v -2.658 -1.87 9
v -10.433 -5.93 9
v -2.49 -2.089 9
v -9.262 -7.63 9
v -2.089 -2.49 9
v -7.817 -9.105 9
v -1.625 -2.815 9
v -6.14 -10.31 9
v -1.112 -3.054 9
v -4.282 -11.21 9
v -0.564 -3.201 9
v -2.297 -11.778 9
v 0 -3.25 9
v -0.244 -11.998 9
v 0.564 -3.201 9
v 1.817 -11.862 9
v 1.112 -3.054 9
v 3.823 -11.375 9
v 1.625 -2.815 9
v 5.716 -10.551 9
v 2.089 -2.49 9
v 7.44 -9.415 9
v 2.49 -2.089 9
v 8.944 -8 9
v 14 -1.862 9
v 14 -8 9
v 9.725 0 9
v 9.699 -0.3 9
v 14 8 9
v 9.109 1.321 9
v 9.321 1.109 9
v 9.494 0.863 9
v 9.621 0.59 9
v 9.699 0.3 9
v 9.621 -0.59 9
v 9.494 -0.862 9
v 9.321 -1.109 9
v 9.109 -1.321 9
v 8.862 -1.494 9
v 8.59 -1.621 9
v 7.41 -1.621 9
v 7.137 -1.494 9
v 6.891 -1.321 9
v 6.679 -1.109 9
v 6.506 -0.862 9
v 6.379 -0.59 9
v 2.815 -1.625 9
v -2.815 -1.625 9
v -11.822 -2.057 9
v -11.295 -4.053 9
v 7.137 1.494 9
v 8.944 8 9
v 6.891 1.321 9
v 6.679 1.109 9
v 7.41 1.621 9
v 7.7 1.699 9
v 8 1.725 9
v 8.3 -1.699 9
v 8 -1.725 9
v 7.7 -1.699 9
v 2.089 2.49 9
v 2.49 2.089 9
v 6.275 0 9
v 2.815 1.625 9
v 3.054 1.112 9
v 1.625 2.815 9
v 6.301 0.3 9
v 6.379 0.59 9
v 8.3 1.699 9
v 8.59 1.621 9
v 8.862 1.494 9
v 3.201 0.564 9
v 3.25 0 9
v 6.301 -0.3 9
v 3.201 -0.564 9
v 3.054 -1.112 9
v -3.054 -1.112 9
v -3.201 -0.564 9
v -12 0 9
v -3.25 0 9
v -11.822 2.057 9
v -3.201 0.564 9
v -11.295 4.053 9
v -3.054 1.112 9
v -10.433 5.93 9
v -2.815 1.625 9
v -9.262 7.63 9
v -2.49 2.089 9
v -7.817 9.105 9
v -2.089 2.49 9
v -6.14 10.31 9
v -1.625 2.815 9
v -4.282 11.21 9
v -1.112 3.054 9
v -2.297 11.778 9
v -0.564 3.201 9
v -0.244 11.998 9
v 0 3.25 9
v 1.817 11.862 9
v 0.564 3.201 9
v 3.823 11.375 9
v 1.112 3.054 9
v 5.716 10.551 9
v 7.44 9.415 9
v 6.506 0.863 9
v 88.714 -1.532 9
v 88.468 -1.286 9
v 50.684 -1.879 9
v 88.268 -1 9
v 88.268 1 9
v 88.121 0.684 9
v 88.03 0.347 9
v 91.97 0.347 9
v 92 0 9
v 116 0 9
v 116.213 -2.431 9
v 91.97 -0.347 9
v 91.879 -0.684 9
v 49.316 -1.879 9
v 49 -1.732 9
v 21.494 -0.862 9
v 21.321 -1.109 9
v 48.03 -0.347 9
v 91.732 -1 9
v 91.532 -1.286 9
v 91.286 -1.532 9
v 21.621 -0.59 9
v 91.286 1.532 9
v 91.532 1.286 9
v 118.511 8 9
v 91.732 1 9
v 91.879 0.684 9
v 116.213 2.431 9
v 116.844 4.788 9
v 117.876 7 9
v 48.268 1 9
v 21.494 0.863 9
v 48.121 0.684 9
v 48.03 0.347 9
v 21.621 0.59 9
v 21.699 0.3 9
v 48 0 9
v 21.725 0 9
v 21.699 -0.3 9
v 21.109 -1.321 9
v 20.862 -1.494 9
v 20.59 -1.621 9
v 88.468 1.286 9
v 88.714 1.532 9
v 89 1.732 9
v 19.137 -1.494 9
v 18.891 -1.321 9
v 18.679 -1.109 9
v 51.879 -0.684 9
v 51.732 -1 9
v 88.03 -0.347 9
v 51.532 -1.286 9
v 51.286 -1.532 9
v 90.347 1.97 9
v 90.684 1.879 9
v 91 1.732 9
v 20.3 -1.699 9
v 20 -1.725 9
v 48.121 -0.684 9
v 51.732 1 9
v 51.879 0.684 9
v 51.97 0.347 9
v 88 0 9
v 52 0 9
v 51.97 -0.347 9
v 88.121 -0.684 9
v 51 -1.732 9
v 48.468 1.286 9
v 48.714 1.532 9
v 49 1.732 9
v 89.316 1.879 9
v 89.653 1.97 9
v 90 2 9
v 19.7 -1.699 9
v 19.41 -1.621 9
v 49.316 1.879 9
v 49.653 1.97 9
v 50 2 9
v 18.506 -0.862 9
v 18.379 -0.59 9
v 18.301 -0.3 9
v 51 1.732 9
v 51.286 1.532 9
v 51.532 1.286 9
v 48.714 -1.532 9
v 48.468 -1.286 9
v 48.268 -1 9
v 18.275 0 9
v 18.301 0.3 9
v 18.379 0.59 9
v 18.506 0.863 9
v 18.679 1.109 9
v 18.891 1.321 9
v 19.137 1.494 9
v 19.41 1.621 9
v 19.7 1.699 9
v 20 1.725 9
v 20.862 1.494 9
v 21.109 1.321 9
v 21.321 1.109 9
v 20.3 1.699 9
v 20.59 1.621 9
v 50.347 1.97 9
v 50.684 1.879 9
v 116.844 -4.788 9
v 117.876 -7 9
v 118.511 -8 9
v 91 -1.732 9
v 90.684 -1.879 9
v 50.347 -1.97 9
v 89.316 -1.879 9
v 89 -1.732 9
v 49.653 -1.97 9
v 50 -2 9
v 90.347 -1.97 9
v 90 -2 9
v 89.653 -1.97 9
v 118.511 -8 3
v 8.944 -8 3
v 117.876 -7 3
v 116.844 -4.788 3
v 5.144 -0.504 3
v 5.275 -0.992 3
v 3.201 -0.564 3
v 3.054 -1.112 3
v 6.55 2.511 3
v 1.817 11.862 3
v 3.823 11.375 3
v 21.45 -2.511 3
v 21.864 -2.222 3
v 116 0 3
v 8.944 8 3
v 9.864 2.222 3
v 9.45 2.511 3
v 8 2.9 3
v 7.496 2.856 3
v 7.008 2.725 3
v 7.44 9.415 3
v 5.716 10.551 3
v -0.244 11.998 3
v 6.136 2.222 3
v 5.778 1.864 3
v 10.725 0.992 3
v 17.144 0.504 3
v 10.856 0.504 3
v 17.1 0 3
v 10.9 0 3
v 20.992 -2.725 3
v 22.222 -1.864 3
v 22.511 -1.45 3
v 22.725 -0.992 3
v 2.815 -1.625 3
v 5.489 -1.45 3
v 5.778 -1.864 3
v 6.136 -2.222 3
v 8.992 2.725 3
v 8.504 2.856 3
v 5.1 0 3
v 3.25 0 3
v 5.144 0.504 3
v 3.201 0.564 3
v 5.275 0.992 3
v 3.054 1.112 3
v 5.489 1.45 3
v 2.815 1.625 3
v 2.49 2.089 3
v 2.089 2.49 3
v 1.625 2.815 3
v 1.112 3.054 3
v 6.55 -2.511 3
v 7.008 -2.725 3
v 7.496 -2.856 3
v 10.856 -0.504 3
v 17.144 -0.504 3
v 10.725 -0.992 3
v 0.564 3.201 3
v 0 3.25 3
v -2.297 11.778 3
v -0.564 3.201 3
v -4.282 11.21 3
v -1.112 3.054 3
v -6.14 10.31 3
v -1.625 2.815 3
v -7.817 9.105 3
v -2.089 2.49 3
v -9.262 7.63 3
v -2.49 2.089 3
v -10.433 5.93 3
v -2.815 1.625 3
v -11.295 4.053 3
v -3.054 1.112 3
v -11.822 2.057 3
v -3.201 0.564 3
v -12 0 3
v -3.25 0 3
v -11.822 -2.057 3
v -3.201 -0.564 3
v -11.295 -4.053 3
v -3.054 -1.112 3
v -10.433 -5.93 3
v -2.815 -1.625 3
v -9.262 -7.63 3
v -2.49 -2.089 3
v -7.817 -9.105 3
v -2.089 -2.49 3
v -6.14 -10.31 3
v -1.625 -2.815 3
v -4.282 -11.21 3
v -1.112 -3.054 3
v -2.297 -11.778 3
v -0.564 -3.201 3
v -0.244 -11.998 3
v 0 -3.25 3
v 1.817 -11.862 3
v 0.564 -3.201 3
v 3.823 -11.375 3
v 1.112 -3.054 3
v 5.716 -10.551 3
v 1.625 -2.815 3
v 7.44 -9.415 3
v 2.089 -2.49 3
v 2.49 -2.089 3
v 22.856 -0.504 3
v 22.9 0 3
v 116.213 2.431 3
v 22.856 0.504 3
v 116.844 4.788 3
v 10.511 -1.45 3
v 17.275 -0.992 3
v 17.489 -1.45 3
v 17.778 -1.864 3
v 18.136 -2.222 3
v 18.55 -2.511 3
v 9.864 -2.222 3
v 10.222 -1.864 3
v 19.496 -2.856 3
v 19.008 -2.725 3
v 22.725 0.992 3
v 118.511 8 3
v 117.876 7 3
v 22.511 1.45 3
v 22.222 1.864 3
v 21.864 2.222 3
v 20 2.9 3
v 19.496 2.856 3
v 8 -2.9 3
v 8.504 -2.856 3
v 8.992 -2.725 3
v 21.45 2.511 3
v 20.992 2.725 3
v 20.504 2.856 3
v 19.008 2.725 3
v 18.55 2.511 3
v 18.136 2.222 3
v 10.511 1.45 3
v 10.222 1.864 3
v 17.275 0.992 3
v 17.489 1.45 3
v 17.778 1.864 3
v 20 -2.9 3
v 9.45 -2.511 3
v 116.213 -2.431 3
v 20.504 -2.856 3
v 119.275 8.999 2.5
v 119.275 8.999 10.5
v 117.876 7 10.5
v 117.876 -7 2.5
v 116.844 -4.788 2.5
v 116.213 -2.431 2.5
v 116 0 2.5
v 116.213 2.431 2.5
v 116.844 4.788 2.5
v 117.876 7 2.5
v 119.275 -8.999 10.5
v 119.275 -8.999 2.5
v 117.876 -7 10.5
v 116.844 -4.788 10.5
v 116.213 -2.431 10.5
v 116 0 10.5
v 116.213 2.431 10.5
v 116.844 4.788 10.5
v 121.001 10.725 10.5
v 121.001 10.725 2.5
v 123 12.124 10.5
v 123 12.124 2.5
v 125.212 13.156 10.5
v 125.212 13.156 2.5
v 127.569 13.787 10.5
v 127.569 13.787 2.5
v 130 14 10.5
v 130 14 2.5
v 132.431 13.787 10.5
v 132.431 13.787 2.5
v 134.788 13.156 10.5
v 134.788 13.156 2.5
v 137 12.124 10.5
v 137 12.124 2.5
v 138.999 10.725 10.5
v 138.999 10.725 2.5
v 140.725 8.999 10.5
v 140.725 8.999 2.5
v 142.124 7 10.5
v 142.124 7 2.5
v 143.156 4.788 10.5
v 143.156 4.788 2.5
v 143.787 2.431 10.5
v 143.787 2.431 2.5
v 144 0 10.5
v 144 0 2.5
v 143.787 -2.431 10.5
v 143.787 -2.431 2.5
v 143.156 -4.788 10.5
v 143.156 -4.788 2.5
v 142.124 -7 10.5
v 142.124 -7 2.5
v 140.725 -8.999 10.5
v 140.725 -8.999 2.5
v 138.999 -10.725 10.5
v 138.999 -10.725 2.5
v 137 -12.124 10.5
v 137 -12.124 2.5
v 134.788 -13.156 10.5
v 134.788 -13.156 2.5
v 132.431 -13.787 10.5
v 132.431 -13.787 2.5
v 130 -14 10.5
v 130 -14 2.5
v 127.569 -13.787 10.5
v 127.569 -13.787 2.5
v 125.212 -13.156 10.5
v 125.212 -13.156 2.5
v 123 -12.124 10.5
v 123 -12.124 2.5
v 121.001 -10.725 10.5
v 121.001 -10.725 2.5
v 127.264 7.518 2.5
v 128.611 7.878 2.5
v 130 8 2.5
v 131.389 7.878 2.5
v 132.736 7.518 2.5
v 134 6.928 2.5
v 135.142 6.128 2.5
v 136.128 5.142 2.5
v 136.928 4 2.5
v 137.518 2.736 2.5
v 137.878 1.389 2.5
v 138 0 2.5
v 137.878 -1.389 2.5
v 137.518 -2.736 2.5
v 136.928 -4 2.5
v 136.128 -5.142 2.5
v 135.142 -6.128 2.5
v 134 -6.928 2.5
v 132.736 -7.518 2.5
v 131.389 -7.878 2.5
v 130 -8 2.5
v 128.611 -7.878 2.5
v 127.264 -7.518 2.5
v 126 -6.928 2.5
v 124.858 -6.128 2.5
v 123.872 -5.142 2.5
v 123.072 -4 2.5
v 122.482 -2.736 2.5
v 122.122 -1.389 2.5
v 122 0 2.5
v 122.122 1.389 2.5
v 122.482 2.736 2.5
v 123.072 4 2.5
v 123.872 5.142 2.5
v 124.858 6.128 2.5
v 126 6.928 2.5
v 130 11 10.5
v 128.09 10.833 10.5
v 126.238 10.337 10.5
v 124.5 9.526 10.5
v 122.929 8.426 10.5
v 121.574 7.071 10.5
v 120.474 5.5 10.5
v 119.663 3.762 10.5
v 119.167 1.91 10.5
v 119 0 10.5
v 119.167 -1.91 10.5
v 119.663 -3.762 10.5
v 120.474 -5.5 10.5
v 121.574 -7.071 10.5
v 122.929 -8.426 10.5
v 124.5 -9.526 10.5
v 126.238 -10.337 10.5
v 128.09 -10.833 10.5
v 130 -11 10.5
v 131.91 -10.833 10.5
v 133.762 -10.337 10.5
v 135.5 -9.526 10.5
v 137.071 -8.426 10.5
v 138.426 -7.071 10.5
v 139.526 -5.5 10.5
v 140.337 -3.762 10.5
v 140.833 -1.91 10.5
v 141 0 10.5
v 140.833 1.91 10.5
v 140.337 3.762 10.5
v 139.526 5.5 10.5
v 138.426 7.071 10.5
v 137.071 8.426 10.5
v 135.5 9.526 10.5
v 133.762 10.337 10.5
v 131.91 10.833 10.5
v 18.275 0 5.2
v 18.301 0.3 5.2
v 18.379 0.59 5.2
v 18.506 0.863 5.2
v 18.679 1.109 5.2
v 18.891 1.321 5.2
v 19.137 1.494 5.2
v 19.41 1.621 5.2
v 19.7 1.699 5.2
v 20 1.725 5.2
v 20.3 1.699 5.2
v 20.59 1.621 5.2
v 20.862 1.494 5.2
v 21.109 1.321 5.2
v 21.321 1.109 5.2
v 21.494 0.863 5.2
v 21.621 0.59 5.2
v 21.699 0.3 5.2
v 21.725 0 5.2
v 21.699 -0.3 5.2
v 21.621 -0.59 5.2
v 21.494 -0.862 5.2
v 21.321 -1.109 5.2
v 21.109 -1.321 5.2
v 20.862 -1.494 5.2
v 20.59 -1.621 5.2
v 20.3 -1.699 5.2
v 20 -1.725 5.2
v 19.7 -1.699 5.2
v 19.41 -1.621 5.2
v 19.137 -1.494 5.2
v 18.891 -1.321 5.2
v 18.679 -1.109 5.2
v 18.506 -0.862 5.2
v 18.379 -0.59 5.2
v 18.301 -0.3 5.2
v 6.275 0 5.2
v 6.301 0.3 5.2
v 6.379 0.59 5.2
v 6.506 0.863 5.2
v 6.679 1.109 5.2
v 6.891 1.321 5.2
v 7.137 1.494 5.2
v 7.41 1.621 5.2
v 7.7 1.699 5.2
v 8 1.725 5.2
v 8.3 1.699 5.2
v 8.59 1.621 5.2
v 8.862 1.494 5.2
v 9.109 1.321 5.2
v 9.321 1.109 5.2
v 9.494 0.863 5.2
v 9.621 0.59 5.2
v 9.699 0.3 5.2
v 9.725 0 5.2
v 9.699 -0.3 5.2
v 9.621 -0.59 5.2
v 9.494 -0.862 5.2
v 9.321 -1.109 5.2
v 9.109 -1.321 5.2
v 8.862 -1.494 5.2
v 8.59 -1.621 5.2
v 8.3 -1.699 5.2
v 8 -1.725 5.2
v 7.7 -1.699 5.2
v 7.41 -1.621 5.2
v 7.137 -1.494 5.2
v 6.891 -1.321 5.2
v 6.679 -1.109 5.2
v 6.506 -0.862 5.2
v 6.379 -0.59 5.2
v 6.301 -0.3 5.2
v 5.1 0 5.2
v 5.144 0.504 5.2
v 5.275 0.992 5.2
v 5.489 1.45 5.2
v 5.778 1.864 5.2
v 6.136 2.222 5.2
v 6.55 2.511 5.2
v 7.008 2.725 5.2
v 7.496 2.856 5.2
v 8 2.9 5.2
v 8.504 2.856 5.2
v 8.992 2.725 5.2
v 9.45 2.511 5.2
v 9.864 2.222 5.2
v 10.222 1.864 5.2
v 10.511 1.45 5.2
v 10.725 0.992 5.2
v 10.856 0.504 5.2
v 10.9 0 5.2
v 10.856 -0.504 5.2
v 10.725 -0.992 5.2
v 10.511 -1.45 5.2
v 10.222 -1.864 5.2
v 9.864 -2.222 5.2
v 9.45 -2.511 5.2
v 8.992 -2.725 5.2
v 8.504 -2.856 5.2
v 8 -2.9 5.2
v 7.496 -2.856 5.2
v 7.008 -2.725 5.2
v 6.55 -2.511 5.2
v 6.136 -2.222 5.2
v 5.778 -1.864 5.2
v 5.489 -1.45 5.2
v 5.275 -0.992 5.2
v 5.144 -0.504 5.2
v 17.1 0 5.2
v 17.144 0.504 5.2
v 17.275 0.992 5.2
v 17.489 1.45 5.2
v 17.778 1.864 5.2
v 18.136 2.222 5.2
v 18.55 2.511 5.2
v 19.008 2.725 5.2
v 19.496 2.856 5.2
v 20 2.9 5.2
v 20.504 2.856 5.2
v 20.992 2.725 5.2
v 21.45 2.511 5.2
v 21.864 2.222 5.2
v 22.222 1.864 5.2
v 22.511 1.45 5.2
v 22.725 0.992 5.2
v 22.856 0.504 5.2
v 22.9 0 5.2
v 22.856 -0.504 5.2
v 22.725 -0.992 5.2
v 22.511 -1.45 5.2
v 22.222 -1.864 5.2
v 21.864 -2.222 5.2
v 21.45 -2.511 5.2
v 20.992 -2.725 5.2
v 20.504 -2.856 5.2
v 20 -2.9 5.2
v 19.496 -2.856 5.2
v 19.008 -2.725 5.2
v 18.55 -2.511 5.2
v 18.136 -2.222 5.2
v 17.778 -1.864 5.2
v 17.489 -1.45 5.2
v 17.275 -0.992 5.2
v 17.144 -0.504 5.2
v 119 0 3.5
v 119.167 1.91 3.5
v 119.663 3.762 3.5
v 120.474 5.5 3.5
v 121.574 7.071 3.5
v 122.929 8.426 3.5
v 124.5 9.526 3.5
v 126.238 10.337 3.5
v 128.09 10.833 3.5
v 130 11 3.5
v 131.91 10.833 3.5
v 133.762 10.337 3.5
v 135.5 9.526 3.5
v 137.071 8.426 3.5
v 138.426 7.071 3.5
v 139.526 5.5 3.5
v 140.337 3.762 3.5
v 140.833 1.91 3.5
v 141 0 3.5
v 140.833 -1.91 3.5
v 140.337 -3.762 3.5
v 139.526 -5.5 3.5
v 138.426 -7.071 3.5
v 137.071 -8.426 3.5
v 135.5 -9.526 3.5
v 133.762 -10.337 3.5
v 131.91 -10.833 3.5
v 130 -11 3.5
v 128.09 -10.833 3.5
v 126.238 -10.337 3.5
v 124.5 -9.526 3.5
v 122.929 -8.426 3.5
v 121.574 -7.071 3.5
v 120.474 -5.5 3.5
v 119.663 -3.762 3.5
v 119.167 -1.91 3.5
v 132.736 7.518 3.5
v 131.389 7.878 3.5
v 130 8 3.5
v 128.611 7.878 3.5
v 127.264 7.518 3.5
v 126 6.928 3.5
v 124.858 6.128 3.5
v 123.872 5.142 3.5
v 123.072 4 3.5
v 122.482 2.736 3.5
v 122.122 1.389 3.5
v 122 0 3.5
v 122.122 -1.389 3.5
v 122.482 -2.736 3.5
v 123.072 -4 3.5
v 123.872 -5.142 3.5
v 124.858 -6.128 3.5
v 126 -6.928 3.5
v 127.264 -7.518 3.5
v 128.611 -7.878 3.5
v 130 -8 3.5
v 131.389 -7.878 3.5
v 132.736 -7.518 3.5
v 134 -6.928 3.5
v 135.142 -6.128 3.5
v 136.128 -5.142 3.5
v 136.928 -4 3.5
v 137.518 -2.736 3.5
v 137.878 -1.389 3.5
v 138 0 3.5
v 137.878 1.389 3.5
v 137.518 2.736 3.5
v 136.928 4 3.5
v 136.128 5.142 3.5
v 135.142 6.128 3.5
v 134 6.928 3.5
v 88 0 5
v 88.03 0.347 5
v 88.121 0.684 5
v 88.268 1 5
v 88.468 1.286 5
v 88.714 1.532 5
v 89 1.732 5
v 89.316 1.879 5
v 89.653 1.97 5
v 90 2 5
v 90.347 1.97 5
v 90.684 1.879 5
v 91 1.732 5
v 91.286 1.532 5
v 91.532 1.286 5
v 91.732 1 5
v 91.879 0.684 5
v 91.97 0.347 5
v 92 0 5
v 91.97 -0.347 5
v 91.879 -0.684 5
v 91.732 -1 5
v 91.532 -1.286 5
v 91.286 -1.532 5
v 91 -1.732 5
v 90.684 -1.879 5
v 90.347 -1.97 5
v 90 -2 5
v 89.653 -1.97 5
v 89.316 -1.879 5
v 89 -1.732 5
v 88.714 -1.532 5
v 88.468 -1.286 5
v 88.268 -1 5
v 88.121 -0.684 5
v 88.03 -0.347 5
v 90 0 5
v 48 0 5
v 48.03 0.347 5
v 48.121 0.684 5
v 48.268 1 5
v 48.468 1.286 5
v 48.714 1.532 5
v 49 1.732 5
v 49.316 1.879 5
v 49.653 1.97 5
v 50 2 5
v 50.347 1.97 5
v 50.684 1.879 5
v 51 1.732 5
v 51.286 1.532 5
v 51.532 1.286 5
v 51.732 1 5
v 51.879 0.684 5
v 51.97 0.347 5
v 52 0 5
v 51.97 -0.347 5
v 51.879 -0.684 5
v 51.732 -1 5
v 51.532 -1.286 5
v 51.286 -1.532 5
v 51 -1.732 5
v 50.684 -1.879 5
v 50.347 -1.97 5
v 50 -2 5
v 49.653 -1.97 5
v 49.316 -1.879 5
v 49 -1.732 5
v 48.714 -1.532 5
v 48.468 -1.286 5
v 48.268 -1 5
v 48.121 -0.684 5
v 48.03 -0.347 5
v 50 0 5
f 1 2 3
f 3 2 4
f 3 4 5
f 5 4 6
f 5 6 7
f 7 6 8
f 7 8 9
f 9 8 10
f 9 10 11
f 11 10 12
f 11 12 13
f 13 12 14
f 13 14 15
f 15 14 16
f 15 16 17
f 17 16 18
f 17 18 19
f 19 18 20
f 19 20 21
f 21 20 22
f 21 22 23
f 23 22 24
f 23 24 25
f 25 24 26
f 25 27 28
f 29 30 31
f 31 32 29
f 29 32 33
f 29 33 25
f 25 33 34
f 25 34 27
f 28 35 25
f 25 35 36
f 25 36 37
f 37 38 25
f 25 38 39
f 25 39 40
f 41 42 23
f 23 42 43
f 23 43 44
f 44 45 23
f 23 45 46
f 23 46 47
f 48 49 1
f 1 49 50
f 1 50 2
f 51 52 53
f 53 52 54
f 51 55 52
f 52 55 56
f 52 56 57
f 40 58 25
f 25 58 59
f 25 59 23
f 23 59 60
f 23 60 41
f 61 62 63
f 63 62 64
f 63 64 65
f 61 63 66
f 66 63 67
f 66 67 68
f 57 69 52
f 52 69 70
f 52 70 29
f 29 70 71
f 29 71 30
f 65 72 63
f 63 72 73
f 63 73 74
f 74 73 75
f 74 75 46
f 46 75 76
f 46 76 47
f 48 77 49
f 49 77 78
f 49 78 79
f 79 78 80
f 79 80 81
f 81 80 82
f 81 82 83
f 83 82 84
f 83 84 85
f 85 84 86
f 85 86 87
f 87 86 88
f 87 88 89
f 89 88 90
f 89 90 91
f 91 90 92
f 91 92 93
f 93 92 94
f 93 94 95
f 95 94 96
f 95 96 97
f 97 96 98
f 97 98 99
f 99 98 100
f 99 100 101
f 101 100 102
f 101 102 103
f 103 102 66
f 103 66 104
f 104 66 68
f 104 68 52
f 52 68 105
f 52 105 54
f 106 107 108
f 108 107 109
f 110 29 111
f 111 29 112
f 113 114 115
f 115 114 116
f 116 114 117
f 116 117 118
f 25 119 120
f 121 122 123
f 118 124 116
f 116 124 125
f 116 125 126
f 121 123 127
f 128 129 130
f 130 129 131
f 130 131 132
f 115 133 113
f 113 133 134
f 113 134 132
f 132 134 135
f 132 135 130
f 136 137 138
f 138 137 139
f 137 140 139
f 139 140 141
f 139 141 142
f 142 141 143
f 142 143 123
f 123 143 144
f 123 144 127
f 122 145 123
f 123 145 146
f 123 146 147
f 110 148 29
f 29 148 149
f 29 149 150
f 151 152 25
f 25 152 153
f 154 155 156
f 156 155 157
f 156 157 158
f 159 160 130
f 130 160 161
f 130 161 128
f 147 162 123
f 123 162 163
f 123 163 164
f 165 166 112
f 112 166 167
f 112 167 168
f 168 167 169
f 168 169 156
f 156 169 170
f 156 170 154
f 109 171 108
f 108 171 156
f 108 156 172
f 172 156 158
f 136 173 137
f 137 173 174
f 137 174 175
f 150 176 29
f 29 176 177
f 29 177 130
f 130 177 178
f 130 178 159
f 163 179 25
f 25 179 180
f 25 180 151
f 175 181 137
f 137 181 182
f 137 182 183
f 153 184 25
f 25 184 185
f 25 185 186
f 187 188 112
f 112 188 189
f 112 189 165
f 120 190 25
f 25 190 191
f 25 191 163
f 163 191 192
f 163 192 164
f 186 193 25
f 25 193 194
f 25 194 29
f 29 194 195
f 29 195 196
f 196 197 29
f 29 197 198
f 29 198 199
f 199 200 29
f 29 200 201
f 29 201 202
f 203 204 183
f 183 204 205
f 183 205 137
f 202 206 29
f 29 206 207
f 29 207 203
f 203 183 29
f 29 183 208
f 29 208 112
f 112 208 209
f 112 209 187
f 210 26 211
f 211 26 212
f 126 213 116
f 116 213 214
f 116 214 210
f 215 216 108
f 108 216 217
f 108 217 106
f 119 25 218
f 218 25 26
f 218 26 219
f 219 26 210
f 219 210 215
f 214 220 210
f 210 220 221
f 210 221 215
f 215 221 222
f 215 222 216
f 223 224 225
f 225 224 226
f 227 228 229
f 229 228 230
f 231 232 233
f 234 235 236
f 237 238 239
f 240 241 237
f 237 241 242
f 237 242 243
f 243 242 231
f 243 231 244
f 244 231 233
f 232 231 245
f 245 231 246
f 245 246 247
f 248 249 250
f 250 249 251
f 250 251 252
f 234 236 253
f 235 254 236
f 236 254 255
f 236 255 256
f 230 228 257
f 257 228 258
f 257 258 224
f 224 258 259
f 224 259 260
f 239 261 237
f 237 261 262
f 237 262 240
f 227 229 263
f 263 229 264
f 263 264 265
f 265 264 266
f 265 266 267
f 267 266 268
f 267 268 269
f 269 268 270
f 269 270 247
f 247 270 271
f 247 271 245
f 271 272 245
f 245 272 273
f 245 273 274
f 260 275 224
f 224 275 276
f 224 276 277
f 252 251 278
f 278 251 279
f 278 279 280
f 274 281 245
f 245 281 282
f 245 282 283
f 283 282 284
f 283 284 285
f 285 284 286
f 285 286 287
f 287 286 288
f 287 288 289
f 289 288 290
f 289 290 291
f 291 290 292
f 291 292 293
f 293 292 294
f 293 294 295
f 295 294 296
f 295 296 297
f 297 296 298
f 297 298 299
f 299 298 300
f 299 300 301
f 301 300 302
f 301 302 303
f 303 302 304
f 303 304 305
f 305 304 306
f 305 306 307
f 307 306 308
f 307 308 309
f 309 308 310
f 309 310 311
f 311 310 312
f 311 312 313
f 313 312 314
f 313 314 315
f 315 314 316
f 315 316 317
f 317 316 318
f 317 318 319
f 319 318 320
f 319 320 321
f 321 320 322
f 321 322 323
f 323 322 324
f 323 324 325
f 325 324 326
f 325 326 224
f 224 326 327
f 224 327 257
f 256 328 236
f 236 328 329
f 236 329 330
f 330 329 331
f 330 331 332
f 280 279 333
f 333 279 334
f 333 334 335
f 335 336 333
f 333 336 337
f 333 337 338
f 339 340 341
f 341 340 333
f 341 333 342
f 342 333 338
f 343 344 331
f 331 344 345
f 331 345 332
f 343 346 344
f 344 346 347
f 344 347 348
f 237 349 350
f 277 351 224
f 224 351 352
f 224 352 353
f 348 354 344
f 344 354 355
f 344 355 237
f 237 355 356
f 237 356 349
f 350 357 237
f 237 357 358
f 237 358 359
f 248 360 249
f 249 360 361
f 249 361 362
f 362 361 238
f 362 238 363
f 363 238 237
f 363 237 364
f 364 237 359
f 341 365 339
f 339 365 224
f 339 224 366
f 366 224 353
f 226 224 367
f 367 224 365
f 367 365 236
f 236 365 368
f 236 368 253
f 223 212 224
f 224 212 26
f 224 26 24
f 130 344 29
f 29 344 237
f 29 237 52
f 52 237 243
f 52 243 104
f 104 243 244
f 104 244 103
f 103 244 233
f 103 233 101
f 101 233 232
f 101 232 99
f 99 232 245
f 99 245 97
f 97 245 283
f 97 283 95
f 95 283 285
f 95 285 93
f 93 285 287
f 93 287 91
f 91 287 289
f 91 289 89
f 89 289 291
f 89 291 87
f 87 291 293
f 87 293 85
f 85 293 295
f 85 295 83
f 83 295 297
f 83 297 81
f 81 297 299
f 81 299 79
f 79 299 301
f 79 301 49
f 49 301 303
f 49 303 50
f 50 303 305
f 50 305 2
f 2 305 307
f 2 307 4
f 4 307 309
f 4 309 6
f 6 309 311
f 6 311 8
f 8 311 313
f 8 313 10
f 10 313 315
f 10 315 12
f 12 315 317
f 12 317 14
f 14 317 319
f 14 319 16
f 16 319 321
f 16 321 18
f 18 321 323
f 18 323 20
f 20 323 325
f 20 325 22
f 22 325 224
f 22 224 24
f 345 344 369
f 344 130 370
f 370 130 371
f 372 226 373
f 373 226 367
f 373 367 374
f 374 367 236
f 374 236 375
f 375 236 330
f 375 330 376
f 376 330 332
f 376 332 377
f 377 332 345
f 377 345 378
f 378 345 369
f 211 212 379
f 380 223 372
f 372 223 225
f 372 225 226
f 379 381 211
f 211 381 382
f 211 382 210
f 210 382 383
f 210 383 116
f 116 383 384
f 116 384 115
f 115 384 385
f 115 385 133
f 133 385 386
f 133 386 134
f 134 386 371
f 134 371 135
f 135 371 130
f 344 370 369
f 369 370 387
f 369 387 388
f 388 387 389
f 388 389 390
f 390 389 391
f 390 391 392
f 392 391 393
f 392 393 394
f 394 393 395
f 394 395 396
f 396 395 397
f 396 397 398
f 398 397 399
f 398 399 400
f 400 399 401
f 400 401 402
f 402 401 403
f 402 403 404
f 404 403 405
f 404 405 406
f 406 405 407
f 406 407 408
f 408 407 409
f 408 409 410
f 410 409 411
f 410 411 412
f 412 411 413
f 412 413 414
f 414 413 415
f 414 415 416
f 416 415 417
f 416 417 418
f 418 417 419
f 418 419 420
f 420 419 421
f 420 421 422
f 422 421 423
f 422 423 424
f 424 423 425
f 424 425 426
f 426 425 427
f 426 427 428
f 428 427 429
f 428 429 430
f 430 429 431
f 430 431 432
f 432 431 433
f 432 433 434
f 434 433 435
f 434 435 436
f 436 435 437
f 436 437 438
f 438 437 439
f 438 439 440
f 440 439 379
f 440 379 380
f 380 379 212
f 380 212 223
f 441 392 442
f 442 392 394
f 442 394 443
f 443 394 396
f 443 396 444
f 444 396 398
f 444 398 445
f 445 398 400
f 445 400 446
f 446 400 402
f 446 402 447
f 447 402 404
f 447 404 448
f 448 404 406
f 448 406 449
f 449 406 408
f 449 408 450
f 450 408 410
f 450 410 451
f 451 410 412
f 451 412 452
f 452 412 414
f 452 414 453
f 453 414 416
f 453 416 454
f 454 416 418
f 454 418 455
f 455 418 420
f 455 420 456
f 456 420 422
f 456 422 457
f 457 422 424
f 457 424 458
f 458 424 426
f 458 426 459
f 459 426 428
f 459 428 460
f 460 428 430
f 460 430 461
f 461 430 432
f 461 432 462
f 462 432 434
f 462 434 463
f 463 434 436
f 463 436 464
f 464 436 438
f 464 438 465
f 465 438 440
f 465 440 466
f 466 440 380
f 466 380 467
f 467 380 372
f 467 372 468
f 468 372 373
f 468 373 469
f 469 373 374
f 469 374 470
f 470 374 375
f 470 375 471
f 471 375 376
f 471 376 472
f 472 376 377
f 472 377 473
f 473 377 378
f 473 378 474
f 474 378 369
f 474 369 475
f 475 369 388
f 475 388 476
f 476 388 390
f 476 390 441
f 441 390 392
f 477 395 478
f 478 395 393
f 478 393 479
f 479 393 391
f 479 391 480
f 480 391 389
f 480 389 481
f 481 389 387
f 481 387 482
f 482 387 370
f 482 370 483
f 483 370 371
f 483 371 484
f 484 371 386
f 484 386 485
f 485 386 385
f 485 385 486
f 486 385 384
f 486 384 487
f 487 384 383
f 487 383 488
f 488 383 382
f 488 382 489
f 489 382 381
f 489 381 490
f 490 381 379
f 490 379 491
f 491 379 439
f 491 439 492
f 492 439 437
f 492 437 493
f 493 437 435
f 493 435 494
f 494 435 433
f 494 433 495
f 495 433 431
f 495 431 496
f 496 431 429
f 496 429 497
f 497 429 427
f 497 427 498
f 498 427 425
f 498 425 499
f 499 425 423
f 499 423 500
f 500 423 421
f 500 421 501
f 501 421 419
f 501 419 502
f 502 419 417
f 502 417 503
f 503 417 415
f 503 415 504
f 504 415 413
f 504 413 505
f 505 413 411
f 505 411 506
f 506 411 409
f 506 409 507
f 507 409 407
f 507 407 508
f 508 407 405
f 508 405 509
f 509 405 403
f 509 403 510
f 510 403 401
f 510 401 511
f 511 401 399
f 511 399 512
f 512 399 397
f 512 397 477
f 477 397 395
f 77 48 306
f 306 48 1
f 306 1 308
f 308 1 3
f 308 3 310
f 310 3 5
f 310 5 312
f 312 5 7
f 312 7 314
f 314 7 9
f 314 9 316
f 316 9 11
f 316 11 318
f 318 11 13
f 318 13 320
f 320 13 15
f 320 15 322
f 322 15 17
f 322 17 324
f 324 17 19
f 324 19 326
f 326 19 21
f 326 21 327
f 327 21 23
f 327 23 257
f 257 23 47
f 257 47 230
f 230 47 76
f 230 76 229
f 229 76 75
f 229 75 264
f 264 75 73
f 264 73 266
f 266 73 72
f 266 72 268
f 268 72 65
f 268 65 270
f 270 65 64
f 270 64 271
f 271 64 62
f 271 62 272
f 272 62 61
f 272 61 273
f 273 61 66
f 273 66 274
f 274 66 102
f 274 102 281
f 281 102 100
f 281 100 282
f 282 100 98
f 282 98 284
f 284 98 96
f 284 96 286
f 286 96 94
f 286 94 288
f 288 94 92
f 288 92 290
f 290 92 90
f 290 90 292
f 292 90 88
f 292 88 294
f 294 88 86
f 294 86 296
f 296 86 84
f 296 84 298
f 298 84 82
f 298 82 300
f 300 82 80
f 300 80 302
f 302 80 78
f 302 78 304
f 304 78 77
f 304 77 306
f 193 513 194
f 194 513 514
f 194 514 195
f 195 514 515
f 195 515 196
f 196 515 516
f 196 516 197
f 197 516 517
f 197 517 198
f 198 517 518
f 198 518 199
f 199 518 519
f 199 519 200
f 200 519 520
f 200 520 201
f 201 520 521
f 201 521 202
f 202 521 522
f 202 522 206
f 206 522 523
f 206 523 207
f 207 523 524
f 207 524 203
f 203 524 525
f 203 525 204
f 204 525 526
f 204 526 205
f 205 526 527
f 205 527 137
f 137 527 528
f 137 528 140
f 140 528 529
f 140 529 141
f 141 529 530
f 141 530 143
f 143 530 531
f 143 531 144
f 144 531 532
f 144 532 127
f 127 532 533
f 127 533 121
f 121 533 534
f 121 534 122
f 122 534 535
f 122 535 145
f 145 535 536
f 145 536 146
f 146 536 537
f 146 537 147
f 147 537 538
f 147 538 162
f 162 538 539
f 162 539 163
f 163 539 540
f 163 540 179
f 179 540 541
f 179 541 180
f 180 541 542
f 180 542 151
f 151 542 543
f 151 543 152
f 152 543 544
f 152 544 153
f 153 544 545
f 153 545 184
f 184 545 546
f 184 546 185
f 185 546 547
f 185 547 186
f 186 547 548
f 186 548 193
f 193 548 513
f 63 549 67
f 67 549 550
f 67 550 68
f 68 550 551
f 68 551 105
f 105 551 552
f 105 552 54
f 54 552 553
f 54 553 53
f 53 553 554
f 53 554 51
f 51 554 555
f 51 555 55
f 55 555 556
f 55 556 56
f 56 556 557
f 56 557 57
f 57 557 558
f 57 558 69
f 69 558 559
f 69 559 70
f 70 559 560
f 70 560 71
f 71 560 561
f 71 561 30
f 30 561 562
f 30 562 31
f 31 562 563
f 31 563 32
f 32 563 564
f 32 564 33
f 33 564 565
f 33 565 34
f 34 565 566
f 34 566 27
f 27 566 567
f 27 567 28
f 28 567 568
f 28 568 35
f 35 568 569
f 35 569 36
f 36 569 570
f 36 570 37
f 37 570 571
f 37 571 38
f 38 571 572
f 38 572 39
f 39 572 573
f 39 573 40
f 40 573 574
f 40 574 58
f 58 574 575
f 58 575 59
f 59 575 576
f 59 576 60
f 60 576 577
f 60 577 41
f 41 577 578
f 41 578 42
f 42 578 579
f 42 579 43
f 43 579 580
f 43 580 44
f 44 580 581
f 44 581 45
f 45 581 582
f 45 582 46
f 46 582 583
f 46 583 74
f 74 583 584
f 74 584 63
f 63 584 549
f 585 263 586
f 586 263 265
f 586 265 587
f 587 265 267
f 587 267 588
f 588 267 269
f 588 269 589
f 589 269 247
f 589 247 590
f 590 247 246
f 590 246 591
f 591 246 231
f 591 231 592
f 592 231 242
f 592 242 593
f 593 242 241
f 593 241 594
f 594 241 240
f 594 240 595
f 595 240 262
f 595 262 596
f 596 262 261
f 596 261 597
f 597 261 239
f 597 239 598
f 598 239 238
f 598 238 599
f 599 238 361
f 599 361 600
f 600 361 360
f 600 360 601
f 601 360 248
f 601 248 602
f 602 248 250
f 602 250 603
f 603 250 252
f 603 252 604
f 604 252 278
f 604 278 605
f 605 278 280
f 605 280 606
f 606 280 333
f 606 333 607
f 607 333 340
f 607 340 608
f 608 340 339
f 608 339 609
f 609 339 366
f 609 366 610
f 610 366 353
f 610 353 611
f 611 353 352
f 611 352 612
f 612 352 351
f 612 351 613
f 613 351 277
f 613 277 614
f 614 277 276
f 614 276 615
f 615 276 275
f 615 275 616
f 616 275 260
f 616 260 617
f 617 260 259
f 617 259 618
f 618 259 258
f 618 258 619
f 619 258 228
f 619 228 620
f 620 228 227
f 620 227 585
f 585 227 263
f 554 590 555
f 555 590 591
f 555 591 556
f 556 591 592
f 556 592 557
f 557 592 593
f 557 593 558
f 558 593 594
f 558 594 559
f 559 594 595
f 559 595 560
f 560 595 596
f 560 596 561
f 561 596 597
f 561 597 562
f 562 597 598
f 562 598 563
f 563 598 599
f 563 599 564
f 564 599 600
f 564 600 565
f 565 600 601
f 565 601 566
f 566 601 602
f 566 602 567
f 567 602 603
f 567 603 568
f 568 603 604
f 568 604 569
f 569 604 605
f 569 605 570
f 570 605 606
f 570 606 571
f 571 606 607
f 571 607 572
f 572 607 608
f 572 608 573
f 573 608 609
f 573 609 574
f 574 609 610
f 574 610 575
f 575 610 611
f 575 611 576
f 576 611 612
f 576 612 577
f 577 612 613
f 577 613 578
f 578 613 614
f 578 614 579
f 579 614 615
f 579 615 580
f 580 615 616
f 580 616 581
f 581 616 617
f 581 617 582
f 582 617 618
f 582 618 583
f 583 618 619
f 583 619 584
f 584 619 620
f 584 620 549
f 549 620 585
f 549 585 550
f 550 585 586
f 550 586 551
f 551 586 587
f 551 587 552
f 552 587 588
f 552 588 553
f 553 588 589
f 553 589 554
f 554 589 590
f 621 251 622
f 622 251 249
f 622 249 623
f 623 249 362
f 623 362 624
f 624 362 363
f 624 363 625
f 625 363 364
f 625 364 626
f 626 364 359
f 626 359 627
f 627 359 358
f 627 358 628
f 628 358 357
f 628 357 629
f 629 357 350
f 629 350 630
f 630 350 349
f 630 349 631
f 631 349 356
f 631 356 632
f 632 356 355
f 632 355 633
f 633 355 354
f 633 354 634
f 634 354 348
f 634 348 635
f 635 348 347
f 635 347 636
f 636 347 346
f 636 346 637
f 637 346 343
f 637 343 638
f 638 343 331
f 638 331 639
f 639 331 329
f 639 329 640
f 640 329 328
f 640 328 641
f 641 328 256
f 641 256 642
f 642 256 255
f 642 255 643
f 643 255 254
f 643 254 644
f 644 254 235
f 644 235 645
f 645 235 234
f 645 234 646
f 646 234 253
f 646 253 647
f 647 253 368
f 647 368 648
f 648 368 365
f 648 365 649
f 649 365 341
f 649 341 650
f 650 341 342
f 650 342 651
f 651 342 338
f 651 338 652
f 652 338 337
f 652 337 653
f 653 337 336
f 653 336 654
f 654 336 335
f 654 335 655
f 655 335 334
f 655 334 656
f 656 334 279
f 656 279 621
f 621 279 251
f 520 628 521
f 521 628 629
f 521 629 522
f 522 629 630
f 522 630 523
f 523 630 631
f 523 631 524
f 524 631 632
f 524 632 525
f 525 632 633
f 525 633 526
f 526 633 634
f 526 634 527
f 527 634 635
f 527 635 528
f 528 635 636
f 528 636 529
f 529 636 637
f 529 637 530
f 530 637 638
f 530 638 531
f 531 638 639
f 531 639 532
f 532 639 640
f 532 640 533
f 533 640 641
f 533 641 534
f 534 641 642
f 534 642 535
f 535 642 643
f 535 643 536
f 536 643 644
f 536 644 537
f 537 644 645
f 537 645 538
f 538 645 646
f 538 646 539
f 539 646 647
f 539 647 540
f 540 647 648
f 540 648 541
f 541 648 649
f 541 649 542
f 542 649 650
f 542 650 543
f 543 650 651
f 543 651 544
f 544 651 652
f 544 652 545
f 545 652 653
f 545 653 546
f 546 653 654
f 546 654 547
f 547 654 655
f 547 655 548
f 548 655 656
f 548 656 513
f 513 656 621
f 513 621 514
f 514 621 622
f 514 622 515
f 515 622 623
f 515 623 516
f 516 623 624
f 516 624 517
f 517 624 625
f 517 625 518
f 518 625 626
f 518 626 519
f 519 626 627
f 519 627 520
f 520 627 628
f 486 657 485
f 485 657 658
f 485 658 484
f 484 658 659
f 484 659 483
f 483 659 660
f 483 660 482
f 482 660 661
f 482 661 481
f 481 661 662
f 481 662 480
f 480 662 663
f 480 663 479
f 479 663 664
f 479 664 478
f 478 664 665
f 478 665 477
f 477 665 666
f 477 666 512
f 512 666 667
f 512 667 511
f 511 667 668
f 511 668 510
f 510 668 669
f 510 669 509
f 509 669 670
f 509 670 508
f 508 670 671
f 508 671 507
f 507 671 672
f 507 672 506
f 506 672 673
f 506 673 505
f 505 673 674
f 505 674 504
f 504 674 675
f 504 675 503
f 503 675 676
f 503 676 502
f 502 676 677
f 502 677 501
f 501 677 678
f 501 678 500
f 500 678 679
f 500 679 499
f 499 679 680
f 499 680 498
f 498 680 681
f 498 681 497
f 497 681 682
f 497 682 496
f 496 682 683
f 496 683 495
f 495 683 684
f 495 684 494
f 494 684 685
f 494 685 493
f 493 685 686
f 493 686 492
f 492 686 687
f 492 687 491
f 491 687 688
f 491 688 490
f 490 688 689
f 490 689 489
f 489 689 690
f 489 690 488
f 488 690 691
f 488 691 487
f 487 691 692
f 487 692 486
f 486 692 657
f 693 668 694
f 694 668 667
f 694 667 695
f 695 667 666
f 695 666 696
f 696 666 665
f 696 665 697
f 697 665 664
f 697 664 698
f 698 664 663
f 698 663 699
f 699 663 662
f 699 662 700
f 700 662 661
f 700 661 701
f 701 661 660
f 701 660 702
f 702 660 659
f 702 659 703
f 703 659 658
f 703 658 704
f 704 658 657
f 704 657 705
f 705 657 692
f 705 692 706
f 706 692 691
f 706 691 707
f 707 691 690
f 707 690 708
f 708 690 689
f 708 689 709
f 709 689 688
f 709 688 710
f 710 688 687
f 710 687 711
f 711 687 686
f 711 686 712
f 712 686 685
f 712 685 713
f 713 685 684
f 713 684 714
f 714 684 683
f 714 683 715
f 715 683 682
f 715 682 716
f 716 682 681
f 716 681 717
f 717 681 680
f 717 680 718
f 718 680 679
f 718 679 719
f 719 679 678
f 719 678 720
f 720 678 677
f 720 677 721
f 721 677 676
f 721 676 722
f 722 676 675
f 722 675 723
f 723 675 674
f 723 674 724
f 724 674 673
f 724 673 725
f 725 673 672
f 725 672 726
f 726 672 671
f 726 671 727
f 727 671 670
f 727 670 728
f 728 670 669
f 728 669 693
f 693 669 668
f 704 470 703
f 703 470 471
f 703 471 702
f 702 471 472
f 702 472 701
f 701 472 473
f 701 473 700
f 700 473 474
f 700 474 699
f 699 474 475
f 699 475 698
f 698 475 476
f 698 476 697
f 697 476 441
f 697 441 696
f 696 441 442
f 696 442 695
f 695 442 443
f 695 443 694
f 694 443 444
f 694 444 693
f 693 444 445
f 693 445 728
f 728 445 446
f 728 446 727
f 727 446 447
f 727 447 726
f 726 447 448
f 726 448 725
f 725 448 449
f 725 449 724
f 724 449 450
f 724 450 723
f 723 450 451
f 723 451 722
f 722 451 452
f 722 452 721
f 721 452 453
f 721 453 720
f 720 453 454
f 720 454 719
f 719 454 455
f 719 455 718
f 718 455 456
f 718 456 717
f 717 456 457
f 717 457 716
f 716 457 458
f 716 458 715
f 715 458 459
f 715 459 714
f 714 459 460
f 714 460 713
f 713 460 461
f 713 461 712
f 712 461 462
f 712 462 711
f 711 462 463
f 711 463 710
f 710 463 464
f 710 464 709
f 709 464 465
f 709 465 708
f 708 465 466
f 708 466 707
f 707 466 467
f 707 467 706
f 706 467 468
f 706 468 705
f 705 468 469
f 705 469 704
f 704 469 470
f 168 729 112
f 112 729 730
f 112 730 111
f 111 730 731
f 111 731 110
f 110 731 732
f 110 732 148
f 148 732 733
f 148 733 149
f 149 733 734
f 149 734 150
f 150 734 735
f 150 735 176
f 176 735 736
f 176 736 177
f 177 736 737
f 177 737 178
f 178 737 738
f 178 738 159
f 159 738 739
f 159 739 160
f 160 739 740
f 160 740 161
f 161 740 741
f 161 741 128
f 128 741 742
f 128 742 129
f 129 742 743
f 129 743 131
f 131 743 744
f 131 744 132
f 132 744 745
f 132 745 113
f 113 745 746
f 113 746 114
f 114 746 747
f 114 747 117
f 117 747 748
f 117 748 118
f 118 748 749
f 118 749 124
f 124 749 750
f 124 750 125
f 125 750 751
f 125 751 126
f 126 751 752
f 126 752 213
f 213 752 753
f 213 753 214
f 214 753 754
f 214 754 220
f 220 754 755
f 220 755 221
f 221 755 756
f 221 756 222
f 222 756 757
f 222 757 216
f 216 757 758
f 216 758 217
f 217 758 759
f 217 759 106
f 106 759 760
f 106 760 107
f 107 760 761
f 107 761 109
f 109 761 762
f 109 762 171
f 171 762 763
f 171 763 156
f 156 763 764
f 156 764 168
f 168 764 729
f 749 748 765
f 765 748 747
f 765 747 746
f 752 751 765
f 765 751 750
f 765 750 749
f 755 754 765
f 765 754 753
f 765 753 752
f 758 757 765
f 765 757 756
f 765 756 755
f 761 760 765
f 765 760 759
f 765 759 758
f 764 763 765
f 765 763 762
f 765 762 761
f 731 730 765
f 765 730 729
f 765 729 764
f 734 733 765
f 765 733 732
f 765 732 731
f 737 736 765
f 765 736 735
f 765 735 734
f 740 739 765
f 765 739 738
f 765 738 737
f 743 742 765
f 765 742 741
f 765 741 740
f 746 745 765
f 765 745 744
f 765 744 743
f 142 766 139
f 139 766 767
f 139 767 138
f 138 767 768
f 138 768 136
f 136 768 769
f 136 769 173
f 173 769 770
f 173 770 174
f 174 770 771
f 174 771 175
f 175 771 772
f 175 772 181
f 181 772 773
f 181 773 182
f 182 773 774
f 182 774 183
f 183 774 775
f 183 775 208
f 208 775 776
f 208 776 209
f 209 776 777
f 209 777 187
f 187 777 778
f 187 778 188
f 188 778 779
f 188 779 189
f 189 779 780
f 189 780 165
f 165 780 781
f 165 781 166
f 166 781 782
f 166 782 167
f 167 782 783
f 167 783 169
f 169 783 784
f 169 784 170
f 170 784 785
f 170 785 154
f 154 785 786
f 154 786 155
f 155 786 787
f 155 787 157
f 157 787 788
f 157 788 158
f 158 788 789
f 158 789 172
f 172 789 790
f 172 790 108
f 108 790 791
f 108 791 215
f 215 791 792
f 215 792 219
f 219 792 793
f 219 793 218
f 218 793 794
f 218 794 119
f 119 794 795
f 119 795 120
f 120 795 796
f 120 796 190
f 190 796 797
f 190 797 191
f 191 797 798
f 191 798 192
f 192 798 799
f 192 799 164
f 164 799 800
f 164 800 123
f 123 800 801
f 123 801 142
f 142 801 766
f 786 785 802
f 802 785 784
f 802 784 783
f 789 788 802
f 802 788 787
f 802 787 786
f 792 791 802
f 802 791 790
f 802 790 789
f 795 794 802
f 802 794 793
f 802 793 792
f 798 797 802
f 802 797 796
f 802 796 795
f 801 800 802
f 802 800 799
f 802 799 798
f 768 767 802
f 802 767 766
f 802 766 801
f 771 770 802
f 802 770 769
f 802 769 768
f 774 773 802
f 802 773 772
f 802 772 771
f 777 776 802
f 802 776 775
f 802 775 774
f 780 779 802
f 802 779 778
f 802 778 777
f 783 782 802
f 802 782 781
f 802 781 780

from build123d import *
from build123d.topology import SkipClean

# Parameters (mm, degrees)
BOSS_EXTRUDE1_START     = 3
SKETCH1_W               = 130
SKETCH1_H               = 16
BOSS_EXTRUDE1_DEPTH     = 6
BOSS_EXTRUDE2_START     = 3
SKETCH2_R               = 12
BOSS_EXTRUDE2_DEPTH     = 6
BOSS_EXTRUDE3_START     = 3
SKETCH3_R               = 14
BOSS_EXTRUDE3_DEPTH     = 6
BOSS_EXTRUDE4_START     = 2.5
SKETCH4_R               = 14
BOSS_EXTRUDE4_DEPTH     = 8
CUT_EXTRUDE1_DEPTH      = 146.059470563
CUT_EXTRUDE1_DEPTH_BACK = 146.059470563
SKETCH5_R               = 3.25
CUT_EXTRUDE2_DEPTH      = 146.059470563
CUT_EXTRUDE2_DEPTH_BACK = 146.059470563
SKETCH6_R               = 1.725
CUT_EXTRUDE3_START      = 3
SKETCH7_R               = 2.9
CUT_EXTRUDE3_DEPTH      = 2.2
CUT_EXTRUDE4_START      = 3
SKETCH8_R               = 2.9
CUT_EXTRUDE4_DEPTH      = 2.2
CUT_EXTRUDE5_START      = 3.5
SKETCH9_R               = 11
CUT_EXTRUDE5_DEPTH      = 7
CUT_EXTRUDE6_DEPTH      = 146.059470563
CUT_EXTRUDE6_DEPTH_BACK = 146.059470563
SKETCH10_R              = 8
CUT_EXTRUDE7_START      = 5
SKETCH11_R              = 2
CUT_EXTRUDE7_DEPTH      = 4


with BuildPart() as part:
    # Sketch1 → Boss-Extrude1 (new body)
    with BuildSketch(Plane.XY.offset(BOSS_EXTRUDE1_START)):
        with Locations((65, 0)):
            Rectangle(SKETCH1_W, SKETCH1_H)
    extrude(amount=BOSS_EXTRUDE1_DEPTH)

    # Sketch2 → Boss-Extrude2 (add)
    with BuildSketch(Plane.XY.offset(BOSS_EXTRUDE2_START)):
        Circle(SKETCH2_R)
    extrude(amount=BOSS_EXTRUDE2_DEPTH)

    # Sketch3 → Boss-Extrude3 (add)
    with BuildSketch(Plane.XY.offset(BOSS_EXTRUDE3_START)):
        with Locations((130, 0)):
            Circle(SKETCH3_R)
    extrude(amount=BOSS_EXTRUDE3_DEPTH)

    # Sketch4 → Boss-Extrude4 (add)
    with SkipClean():  # the faces are left unmerged after this step: merging them gives an invalid solid
        with BuildSketch(Plane.XY.offset(BOSS_EXTRUDE4_START)):
            with Locations((130, 0)):
                Circle(SKETCH4_R)
        extrude(amount=BOSS_EXTRUDE4_DEPTH)
    add(part.part.scale(1), mode=Mode.REPLACE)  # the faces are merged on a copy

    # Sketch5 → Cut-Extrude1 (cut, two sides: drawn at the far end of the back side and taken through both)
    with BuildSketch(Plane.XY.offset(-CUT_EXTRUDE1_DEPTH_BACK)):
        Circle(SKETCH5_R)
    extrude(amount=CUT_EXTRUDE1_DEPTH + CUT_EXTRUDE1_DEPTH_BACK, mode=Mode.SUBTRACT)

    # Sketch6 → Cut-Extrude2 (cut, two sides: drawn at the far end of the back side and taken through both)
    with BuildSketch(Plane.XY.offset(-CUT_EXTRUDE2_DEPTH_BACK)):
        with Locations((8, 0)):
            Circle(SKETCH6_R)
        with Locations((20, 0)):
            Circle(SKETCH6_R)
    extrude(amount=CUT_EXTRUDE2_DEPTH + CUT_EXTRUDE2_DEPTH_BACK, mode=Mode.SUBTRACT)

    # Sketch7 → Cut-Extrude3 (cut)
    with BuildSketch(Plane.XY.offset(CUT_EXTRUDE3_START)):
        with Locations((8, 0)):
            Circle(SKETCH7_R)
    extrude(amount=CUT_EXTRUDE3_DEPTH, mode=Mode.SUBTRACT)

    # Sketch8 → Cut-Extrude4 (cut)
    with BuildSketch(Plane.XY.offset(CUT_EXTRUDE4_START)):
        with Locations((20, 0)):
            Circle(SKETCH8_R)
    extrude(amount=CUT_EXTRUDE4_DEPTH, mode=Mode.SUBTRACT)

    # Sketch9 → Cut-Extrude5 (cut)
    with BuildSketch(Plane.XY.offset(CUT_EXTRUDE5_START)):
        with Locations((130, 0)):
            Circle(SKETCH9_R)
    extrude(amount=CUT_EXTRUDE5_DEPTH, mode=Mode.SUBTRACT)

    # Sketch10 → Cut-Extrude6 (cut, two sides: drawn at the far end of the back side and taken through both)
    with BuildSketch(Plane.XY.offset(-CUT_EXTRUDE6_DEPTH_BACK)):
        with Locations((130, 0)):
            Circle(SKETCH10_R)
    extrude(amount=CUT_EXTRUDE6_DEPTH + CUT_EXTRUDE6_DEPTH_BACK, mode=Mode.SUBTRACT)

    # Sketch11 → Cut-Extrude7 (cut)
    with BuildSketch(Plane.XY.offset(CUT_EXTRUDE7_START)):
        with Locations((50, 0)):
            Circle(SKETCH11_R)
        with Locations((90, 0)):
            Circle(SKETCH11_R)
    extrude(amount=CUT_EXTRUDE7_DEPTH, mode=Mode.SUBTRACT)


solid = part.part
